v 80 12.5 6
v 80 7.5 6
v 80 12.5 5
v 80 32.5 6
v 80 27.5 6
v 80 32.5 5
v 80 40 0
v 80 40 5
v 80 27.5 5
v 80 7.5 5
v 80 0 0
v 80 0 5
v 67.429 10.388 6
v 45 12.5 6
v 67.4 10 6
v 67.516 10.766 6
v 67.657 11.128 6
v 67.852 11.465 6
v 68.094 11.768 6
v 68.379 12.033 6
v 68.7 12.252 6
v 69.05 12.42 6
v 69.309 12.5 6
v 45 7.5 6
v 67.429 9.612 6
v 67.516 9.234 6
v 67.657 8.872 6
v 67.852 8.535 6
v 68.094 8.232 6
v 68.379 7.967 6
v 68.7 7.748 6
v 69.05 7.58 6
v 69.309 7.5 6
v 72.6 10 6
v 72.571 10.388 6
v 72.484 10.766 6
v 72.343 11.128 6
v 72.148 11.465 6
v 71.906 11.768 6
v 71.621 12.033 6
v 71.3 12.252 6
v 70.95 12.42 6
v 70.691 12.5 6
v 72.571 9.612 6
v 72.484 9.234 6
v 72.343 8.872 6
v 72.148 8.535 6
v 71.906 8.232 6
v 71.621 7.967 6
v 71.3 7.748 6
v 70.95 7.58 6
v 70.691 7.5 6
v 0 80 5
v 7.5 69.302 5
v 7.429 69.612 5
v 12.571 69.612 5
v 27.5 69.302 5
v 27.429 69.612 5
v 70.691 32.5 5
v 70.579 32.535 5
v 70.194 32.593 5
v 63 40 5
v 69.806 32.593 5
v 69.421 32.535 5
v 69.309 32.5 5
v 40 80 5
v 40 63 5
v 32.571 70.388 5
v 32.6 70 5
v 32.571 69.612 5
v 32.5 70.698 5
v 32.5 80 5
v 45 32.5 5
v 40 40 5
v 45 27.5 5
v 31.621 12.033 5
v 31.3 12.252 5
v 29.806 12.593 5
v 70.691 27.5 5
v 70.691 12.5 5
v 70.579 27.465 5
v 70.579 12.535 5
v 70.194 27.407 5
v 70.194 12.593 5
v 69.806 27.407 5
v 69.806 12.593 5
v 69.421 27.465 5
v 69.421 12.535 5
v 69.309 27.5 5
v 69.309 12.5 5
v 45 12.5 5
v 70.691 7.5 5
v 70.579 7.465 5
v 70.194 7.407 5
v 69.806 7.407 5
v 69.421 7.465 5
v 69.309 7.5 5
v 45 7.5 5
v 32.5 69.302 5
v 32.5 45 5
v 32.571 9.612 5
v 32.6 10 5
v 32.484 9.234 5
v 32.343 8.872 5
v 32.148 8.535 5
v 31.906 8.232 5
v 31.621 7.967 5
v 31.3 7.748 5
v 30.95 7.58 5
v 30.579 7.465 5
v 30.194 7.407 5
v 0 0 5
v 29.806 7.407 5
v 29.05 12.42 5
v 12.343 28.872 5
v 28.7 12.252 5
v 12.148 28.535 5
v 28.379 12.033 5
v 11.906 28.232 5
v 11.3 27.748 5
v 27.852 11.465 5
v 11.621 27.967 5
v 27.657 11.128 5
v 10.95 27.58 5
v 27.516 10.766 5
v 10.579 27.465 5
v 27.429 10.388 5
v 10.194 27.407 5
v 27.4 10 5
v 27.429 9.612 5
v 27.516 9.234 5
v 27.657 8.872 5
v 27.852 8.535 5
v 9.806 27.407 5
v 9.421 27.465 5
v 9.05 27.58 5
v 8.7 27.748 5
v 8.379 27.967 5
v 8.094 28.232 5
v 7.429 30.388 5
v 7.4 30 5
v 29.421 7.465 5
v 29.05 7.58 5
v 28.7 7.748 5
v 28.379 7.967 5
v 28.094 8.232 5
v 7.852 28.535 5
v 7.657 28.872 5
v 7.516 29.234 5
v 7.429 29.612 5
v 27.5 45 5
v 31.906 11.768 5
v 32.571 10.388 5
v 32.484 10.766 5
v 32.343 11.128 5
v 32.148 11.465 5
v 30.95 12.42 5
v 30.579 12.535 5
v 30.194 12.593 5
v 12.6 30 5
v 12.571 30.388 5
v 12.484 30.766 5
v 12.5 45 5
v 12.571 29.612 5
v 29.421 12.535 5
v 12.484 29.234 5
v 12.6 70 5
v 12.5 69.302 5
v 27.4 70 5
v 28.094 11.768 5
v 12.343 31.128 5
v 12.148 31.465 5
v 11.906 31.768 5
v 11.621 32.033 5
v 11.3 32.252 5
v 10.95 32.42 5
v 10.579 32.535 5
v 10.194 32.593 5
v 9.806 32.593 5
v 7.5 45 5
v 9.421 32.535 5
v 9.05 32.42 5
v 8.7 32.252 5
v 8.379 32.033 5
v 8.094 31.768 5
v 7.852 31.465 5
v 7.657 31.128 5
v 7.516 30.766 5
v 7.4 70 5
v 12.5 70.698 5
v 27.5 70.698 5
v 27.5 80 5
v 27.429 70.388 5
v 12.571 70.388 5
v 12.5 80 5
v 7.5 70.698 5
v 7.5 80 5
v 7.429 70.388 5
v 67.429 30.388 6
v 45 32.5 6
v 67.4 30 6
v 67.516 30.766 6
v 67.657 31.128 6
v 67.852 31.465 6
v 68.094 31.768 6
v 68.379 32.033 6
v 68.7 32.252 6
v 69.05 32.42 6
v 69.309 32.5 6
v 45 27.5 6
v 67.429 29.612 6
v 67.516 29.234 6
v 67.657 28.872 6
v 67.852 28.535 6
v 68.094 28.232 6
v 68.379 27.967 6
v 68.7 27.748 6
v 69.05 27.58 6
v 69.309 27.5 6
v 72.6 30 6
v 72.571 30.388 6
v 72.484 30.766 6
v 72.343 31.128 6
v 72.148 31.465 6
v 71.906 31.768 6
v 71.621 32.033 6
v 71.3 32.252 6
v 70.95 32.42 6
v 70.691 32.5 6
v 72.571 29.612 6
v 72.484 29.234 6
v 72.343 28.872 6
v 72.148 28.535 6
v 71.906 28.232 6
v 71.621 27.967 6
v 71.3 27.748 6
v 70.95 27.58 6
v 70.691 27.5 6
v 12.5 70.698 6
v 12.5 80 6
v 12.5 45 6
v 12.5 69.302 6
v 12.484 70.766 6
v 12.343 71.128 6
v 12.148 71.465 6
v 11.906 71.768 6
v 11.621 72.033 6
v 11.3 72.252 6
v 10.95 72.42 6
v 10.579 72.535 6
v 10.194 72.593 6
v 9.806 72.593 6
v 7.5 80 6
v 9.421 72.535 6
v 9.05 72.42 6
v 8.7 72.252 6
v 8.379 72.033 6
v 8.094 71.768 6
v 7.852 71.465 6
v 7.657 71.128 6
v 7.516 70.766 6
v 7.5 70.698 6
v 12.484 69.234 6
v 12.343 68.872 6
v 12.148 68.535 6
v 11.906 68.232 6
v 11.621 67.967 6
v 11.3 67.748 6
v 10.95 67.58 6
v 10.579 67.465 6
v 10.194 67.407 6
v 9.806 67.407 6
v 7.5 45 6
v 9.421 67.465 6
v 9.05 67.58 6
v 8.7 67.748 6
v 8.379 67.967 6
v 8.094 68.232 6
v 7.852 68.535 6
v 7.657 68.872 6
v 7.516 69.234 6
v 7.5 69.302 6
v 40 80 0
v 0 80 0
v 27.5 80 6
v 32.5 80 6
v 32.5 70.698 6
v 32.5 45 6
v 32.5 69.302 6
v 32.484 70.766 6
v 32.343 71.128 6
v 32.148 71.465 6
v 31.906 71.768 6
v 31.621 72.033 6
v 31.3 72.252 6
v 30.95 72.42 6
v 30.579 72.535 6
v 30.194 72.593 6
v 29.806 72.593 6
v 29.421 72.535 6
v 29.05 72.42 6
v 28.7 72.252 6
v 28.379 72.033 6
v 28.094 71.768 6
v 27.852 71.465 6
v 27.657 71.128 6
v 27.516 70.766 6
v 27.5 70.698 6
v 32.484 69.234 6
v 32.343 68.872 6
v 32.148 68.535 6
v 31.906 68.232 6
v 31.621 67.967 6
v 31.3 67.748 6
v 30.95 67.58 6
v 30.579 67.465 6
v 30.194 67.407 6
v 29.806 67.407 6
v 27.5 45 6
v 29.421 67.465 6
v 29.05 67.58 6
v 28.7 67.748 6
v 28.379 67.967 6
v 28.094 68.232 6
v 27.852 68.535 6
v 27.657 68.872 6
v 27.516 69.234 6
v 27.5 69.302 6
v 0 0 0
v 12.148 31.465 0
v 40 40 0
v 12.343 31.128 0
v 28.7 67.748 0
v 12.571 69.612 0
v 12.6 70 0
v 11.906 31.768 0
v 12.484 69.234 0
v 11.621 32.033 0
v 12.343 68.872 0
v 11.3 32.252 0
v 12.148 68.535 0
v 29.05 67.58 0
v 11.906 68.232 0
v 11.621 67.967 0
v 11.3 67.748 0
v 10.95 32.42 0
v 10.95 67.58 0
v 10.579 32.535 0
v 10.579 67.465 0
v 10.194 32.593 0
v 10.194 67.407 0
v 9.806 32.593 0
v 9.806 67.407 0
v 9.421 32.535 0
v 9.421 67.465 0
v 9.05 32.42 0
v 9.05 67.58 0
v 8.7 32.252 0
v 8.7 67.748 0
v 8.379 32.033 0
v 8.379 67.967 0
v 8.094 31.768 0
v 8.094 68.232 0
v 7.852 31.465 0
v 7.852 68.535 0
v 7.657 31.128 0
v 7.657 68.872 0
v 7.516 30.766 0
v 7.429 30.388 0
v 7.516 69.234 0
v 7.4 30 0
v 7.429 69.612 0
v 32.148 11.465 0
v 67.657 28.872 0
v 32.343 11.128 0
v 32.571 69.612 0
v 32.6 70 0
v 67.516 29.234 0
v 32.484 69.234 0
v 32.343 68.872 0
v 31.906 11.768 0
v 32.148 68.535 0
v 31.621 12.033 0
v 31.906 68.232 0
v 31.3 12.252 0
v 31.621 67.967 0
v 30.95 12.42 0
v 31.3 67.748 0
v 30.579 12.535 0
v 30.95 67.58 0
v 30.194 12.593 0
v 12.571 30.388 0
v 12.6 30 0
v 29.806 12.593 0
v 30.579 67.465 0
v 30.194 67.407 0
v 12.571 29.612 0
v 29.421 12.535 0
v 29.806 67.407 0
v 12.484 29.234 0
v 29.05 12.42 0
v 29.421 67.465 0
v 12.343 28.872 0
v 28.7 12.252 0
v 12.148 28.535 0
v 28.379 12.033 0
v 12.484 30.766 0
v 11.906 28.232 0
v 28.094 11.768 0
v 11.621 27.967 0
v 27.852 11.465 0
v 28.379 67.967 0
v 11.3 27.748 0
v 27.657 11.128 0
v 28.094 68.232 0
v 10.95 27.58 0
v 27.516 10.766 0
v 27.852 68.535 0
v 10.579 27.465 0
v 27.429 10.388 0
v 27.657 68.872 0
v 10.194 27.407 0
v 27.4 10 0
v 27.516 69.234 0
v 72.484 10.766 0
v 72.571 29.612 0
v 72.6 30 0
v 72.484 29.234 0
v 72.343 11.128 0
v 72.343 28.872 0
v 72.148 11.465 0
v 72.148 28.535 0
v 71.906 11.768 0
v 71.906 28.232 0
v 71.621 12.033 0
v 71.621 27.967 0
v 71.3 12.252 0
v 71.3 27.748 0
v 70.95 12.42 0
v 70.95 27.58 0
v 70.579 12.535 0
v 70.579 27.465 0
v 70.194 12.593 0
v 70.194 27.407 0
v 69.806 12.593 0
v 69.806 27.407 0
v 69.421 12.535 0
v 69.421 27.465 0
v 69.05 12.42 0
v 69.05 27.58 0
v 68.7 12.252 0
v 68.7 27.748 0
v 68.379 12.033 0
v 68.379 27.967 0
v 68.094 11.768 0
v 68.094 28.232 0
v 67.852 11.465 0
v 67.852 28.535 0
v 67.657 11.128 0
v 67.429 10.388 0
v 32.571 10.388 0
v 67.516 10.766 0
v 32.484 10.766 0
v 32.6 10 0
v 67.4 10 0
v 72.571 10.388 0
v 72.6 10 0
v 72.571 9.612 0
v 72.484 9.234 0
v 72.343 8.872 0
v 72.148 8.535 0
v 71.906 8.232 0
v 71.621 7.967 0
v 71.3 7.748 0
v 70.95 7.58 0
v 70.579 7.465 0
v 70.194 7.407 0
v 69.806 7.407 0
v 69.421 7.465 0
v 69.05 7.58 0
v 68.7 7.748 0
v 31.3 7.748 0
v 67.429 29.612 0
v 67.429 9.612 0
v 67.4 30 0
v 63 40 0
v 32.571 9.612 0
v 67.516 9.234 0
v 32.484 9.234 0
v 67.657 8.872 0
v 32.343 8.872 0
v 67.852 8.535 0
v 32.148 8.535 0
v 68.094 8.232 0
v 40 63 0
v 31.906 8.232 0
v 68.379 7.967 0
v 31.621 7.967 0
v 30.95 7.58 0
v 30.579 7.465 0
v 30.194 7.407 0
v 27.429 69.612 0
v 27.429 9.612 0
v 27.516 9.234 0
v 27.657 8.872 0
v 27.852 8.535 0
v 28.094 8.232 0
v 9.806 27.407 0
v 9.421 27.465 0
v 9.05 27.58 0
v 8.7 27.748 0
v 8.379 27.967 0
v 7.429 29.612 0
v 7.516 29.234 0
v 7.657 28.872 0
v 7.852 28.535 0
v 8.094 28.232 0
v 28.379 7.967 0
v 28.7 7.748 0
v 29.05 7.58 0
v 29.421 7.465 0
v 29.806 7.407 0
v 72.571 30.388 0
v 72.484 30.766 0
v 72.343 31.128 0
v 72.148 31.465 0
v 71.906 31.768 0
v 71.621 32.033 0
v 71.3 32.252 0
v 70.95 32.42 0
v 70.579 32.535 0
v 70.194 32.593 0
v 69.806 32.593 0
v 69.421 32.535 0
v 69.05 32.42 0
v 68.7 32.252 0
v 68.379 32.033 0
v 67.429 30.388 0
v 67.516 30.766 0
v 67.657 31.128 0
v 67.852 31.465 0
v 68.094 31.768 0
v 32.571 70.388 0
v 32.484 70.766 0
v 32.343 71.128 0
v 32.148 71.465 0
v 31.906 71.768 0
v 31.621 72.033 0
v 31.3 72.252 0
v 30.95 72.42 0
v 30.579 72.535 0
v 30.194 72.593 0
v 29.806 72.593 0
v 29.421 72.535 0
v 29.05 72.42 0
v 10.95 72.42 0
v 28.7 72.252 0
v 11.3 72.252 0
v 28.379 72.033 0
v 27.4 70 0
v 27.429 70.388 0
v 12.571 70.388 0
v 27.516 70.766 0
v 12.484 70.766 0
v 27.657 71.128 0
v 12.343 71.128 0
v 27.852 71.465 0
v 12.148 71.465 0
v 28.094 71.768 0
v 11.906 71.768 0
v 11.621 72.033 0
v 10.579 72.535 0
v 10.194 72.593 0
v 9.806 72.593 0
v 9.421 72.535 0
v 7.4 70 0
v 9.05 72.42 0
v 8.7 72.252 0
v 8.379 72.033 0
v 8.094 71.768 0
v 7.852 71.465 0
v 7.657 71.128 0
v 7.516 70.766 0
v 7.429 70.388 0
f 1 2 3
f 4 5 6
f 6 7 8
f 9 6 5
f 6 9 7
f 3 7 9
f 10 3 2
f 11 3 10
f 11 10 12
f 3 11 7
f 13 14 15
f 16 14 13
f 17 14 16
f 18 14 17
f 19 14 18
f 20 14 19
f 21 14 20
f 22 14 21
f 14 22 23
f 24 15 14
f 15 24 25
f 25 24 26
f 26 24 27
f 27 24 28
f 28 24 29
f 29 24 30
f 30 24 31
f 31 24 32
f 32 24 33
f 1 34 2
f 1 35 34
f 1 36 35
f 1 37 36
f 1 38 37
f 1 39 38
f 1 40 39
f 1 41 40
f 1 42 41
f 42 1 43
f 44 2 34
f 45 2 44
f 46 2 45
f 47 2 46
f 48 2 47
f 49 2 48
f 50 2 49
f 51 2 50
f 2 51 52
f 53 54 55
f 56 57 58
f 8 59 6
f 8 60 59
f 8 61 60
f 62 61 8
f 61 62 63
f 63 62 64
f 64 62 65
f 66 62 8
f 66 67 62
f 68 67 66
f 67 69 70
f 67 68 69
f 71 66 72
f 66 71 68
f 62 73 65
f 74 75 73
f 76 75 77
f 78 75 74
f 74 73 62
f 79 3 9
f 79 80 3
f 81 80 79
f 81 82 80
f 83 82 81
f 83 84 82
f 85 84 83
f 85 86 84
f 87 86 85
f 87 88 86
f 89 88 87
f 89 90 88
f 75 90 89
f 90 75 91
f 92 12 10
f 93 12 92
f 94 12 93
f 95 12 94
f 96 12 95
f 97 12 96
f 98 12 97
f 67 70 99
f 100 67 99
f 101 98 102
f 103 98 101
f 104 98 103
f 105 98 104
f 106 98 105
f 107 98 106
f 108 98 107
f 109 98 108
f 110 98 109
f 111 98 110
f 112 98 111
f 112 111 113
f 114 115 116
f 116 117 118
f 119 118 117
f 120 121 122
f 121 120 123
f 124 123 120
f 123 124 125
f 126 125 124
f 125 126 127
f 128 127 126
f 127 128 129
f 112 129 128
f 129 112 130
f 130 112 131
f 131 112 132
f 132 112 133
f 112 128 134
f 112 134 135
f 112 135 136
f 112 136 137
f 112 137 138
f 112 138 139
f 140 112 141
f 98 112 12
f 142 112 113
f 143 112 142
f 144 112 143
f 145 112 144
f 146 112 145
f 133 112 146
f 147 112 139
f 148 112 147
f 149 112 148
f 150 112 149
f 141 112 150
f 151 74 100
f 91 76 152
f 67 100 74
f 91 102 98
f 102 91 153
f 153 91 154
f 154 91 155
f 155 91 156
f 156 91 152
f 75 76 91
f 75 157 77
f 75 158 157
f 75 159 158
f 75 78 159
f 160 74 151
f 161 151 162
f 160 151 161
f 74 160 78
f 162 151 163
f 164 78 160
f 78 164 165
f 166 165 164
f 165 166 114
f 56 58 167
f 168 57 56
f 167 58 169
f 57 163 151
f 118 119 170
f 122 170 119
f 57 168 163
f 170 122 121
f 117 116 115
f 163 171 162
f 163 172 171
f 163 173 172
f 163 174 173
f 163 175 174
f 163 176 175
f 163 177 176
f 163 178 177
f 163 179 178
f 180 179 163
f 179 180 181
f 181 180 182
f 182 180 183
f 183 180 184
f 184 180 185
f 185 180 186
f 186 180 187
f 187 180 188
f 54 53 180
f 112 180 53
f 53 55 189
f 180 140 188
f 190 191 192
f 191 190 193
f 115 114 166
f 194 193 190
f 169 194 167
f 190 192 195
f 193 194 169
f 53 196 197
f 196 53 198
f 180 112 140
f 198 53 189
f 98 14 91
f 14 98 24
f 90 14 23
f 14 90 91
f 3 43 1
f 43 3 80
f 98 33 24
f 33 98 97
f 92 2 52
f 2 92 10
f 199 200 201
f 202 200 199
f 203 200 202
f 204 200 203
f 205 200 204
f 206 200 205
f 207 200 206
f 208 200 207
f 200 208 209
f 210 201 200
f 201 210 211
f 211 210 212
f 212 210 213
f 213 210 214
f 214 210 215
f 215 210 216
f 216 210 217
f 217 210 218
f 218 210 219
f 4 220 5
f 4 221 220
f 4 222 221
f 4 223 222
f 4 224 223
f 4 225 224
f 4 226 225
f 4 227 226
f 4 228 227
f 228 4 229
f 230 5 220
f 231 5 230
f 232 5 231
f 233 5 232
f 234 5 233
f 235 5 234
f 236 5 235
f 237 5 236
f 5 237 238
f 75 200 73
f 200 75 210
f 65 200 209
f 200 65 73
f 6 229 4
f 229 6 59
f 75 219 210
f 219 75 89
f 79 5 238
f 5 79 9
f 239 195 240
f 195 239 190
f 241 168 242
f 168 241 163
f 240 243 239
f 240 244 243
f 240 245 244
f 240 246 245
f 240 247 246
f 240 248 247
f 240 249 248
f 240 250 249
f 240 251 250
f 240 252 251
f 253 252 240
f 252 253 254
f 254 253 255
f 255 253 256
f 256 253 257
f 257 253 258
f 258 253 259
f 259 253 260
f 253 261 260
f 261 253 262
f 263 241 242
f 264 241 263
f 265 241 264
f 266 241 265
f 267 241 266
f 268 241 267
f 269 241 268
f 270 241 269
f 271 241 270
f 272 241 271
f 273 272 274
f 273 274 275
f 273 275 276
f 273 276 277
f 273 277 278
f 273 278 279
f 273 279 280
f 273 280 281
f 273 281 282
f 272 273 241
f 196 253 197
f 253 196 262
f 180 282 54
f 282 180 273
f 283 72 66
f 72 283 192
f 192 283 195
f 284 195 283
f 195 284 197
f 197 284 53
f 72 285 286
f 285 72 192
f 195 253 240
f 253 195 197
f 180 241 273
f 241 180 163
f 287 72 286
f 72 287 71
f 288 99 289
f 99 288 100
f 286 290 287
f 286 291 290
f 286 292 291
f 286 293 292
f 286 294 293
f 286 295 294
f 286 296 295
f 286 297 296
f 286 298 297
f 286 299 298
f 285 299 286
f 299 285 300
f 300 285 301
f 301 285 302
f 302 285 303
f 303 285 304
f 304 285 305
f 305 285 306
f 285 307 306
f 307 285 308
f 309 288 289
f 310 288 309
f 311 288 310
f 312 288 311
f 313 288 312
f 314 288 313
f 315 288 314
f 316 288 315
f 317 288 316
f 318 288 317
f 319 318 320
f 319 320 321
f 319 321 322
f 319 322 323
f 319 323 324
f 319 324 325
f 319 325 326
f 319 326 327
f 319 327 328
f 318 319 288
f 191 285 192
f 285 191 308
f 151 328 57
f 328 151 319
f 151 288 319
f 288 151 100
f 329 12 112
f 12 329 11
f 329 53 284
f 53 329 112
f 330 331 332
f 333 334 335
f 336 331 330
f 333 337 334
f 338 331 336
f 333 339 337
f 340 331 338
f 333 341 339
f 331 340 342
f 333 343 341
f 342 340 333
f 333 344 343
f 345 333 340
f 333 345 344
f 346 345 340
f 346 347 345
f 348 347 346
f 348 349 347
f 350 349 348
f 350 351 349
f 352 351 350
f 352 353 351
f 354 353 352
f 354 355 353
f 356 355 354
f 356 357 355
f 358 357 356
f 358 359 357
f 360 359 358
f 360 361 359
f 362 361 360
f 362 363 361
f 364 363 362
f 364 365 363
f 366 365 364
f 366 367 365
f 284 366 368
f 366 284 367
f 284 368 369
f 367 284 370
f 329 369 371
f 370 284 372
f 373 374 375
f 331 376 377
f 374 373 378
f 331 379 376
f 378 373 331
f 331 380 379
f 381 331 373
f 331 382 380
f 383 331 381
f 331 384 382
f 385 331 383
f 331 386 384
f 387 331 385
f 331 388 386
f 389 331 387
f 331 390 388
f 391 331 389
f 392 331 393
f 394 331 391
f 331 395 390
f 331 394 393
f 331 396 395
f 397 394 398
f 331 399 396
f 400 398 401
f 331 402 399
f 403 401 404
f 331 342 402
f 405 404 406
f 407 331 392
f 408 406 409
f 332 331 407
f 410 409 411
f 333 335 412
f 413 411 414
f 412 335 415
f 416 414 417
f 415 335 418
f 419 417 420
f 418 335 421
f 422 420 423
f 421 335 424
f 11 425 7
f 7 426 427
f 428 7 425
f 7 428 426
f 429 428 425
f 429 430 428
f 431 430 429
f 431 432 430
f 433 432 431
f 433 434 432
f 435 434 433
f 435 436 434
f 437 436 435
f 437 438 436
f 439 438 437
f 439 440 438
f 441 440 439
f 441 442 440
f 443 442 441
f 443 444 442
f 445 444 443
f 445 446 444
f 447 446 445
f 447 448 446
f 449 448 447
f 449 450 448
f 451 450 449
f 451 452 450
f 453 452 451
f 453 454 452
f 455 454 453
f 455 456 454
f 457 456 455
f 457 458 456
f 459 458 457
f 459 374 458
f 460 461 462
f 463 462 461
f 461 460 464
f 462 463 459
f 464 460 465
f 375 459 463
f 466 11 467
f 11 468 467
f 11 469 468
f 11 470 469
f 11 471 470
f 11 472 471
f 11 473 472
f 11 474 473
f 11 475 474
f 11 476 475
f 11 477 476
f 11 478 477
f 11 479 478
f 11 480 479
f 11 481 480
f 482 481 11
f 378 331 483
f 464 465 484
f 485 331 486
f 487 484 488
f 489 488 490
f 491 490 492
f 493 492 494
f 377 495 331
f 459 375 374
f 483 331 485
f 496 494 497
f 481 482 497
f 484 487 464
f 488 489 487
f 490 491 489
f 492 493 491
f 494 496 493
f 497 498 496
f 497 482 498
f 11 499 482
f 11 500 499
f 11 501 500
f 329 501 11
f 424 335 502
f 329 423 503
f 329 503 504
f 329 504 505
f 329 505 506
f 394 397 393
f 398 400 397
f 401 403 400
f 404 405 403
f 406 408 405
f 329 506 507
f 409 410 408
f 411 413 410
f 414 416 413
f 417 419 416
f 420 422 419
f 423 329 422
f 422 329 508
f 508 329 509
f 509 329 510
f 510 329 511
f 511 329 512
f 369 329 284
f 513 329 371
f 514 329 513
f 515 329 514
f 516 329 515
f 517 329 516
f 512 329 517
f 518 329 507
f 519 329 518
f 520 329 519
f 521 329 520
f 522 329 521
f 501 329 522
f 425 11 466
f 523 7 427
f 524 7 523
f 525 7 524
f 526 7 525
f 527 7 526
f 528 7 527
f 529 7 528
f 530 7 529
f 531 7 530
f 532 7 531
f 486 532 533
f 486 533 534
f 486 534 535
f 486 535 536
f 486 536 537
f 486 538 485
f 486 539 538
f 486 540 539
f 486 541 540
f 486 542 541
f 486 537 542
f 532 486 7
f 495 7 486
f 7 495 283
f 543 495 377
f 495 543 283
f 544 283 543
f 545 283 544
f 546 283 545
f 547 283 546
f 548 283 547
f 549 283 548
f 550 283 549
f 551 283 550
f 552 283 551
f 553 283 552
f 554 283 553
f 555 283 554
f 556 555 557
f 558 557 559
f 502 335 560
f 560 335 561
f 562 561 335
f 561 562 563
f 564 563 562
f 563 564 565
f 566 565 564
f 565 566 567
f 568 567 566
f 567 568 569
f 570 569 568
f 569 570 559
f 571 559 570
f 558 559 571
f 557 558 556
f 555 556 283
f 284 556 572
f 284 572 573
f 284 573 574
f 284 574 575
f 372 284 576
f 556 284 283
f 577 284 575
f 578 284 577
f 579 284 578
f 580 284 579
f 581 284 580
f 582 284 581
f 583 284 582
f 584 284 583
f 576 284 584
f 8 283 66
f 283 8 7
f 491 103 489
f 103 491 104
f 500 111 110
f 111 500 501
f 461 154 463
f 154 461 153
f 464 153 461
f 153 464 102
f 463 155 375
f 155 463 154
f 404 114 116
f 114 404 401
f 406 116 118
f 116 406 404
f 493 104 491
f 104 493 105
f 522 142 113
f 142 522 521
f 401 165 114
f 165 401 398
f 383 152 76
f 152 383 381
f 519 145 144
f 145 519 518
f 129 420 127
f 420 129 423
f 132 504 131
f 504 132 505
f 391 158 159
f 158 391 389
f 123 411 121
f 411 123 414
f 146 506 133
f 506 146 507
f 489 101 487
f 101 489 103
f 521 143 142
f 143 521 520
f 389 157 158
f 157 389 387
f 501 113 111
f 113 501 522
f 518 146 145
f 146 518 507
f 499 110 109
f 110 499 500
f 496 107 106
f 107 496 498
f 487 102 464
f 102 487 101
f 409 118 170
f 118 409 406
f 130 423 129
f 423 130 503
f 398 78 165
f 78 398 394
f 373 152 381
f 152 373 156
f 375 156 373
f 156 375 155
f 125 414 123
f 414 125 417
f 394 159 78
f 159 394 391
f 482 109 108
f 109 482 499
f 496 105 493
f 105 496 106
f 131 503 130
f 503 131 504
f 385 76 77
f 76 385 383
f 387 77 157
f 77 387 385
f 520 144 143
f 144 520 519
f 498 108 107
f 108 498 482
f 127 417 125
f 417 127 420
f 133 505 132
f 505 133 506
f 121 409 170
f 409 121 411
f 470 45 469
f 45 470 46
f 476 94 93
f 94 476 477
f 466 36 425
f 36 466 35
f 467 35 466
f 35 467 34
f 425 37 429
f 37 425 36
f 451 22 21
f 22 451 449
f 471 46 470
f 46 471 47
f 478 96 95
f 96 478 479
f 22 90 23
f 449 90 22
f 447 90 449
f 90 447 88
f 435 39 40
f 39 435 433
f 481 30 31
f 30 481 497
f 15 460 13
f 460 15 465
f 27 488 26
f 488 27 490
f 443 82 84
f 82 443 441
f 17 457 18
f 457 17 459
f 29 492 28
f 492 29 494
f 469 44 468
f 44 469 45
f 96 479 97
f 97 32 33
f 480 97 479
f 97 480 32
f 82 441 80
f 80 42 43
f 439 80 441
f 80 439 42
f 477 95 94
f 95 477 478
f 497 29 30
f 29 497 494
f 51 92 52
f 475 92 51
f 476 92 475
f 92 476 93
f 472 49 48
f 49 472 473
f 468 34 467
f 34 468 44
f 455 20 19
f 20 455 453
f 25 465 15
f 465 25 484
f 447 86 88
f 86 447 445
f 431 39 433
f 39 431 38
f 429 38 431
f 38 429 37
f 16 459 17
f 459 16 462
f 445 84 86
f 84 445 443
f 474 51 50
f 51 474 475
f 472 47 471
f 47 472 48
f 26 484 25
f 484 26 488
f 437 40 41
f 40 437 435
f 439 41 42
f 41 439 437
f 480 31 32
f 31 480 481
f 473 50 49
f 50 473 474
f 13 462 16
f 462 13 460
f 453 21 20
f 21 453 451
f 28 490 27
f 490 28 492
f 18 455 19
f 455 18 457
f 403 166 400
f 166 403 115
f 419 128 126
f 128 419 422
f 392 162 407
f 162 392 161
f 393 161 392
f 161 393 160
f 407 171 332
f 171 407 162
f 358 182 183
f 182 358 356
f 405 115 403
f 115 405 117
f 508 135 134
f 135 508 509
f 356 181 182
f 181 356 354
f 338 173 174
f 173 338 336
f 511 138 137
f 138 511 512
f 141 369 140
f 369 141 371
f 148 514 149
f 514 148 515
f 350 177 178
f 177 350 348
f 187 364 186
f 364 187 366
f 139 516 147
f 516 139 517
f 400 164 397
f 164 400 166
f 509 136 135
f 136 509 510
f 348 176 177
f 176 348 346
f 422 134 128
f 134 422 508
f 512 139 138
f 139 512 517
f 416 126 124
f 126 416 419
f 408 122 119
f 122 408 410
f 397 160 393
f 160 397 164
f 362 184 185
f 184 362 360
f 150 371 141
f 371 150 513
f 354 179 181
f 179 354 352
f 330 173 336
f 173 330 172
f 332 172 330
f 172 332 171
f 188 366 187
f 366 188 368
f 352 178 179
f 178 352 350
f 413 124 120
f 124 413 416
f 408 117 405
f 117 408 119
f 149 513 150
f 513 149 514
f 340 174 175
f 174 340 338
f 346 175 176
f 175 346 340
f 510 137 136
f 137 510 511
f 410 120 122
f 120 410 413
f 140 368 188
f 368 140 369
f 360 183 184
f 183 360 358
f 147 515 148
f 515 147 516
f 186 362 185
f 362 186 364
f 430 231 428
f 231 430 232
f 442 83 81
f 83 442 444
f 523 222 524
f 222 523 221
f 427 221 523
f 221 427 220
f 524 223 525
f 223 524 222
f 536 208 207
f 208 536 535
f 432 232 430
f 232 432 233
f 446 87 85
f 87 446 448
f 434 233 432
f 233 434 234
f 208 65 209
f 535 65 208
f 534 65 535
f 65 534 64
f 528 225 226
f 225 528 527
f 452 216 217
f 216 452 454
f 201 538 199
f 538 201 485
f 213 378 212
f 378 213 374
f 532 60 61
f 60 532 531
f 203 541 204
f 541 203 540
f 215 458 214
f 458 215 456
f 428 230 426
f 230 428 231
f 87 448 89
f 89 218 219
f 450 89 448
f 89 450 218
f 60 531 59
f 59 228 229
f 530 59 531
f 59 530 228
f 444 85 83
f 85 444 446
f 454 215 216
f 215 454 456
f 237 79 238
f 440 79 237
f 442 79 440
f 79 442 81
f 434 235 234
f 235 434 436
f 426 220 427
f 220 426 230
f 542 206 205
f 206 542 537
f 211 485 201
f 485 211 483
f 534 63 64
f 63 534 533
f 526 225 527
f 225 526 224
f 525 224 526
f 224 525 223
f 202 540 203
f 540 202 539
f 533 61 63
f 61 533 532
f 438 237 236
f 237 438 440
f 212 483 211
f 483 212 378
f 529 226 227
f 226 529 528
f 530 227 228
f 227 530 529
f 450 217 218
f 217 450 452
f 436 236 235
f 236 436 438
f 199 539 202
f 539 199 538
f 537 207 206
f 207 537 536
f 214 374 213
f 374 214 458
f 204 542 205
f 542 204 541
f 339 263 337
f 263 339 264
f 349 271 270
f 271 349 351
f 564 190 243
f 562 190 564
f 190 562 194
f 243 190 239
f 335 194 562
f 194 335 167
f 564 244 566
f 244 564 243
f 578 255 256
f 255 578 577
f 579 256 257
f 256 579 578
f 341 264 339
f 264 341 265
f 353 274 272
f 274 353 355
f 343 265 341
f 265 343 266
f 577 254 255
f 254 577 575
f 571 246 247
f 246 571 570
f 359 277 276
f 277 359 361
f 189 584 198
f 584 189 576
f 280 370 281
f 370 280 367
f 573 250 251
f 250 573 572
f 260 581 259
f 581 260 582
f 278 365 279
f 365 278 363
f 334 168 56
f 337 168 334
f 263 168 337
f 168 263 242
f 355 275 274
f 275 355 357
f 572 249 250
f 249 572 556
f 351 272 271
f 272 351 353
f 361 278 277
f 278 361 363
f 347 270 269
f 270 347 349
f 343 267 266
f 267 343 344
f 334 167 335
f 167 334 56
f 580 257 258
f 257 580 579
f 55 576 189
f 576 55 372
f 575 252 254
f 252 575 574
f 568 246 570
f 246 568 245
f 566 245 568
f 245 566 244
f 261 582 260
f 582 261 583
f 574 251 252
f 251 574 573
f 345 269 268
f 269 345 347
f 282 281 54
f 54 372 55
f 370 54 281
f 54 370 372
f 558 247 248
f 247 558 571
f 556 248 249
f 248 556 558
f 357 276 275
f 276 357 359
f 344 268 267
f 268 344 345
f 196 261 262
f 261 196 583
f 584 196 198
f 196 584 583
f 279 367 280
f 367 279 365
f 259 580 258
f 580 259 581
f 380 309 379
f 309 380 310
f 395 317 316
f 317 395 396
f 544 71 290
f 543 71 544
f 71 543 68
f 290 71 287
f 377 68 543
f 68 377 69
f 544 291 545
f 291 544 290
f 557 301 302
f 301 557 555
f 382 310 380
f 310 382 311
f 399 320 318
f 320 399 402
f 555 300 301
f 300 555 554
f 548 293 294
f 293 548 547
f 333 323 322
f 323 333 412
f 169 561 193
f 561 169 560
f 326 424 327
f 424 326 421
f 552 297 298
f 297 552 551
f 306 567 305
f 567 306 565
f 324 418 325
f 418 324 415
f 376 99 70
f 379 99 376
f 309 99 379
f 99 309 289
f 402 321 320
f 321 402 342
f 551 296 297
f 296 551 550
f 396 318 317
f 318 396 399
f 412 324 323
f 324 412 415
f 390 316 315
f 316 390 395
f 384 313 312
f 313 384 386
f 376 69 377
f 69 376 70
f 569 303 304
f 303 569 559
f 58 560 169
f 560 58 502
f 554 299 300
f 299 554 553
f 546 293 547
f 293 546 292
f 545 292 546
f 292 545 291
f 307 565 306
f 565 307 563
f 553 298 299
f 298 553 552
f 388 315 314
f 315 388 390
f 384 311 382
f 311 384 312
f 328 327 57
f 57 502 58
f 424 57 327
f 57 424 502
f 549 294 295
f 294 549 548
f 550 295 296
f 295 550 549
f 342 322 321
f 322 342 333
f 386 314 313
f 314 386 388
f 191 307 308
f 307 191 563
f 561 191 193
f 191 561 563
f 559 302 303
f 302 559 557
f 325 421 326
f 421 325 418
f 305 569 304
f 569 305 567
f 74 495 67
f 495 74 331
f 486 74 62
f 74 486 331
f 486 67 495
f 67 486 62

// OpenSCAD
$fn = 42;

module prism(l, w, h) {
    polyhedron(
        points = [[0,0,0], [l,0,0], [l,w,0], [0,w,0], [0,w,h], [l,w,h]],
        faces = [[0,1,2,3],[5,4,3,2],[0,4,5,1],[0,3,4],[5,2,1]]
    );
}

difference() {
    union() {
        color("green")
        hull() {
            cube([80, 40, 5]);
            cube([40, 80, 5]);
        }
        
        color("red")
        for (i = [0, 20])
        translate([45, 7.5 + i, 5])
        cube([35, 5, 1]);
        
        color("red")
        for (i = [0, 20])
        translate([7.5 + i, 45, 5])
        cube([5, 35, 1]);
    }
    
    translate([40, 40 + 23, -1])
    rotate([0, -90, 180])
    prism(7, 23, 23);
    
    for (i = [30, 70])
    translate([i, 10, -1])
    cylinder(d = 5.2, h = 8);
    
    for (i = [10, 70])
    translate([i, 30, -1])
    cylinder(d = 5.2, h = 8);
    
    for (i = [10, 30])
    translate([i, 70, -1])
    cylinder(d = 5.2, h = 8);
} 
